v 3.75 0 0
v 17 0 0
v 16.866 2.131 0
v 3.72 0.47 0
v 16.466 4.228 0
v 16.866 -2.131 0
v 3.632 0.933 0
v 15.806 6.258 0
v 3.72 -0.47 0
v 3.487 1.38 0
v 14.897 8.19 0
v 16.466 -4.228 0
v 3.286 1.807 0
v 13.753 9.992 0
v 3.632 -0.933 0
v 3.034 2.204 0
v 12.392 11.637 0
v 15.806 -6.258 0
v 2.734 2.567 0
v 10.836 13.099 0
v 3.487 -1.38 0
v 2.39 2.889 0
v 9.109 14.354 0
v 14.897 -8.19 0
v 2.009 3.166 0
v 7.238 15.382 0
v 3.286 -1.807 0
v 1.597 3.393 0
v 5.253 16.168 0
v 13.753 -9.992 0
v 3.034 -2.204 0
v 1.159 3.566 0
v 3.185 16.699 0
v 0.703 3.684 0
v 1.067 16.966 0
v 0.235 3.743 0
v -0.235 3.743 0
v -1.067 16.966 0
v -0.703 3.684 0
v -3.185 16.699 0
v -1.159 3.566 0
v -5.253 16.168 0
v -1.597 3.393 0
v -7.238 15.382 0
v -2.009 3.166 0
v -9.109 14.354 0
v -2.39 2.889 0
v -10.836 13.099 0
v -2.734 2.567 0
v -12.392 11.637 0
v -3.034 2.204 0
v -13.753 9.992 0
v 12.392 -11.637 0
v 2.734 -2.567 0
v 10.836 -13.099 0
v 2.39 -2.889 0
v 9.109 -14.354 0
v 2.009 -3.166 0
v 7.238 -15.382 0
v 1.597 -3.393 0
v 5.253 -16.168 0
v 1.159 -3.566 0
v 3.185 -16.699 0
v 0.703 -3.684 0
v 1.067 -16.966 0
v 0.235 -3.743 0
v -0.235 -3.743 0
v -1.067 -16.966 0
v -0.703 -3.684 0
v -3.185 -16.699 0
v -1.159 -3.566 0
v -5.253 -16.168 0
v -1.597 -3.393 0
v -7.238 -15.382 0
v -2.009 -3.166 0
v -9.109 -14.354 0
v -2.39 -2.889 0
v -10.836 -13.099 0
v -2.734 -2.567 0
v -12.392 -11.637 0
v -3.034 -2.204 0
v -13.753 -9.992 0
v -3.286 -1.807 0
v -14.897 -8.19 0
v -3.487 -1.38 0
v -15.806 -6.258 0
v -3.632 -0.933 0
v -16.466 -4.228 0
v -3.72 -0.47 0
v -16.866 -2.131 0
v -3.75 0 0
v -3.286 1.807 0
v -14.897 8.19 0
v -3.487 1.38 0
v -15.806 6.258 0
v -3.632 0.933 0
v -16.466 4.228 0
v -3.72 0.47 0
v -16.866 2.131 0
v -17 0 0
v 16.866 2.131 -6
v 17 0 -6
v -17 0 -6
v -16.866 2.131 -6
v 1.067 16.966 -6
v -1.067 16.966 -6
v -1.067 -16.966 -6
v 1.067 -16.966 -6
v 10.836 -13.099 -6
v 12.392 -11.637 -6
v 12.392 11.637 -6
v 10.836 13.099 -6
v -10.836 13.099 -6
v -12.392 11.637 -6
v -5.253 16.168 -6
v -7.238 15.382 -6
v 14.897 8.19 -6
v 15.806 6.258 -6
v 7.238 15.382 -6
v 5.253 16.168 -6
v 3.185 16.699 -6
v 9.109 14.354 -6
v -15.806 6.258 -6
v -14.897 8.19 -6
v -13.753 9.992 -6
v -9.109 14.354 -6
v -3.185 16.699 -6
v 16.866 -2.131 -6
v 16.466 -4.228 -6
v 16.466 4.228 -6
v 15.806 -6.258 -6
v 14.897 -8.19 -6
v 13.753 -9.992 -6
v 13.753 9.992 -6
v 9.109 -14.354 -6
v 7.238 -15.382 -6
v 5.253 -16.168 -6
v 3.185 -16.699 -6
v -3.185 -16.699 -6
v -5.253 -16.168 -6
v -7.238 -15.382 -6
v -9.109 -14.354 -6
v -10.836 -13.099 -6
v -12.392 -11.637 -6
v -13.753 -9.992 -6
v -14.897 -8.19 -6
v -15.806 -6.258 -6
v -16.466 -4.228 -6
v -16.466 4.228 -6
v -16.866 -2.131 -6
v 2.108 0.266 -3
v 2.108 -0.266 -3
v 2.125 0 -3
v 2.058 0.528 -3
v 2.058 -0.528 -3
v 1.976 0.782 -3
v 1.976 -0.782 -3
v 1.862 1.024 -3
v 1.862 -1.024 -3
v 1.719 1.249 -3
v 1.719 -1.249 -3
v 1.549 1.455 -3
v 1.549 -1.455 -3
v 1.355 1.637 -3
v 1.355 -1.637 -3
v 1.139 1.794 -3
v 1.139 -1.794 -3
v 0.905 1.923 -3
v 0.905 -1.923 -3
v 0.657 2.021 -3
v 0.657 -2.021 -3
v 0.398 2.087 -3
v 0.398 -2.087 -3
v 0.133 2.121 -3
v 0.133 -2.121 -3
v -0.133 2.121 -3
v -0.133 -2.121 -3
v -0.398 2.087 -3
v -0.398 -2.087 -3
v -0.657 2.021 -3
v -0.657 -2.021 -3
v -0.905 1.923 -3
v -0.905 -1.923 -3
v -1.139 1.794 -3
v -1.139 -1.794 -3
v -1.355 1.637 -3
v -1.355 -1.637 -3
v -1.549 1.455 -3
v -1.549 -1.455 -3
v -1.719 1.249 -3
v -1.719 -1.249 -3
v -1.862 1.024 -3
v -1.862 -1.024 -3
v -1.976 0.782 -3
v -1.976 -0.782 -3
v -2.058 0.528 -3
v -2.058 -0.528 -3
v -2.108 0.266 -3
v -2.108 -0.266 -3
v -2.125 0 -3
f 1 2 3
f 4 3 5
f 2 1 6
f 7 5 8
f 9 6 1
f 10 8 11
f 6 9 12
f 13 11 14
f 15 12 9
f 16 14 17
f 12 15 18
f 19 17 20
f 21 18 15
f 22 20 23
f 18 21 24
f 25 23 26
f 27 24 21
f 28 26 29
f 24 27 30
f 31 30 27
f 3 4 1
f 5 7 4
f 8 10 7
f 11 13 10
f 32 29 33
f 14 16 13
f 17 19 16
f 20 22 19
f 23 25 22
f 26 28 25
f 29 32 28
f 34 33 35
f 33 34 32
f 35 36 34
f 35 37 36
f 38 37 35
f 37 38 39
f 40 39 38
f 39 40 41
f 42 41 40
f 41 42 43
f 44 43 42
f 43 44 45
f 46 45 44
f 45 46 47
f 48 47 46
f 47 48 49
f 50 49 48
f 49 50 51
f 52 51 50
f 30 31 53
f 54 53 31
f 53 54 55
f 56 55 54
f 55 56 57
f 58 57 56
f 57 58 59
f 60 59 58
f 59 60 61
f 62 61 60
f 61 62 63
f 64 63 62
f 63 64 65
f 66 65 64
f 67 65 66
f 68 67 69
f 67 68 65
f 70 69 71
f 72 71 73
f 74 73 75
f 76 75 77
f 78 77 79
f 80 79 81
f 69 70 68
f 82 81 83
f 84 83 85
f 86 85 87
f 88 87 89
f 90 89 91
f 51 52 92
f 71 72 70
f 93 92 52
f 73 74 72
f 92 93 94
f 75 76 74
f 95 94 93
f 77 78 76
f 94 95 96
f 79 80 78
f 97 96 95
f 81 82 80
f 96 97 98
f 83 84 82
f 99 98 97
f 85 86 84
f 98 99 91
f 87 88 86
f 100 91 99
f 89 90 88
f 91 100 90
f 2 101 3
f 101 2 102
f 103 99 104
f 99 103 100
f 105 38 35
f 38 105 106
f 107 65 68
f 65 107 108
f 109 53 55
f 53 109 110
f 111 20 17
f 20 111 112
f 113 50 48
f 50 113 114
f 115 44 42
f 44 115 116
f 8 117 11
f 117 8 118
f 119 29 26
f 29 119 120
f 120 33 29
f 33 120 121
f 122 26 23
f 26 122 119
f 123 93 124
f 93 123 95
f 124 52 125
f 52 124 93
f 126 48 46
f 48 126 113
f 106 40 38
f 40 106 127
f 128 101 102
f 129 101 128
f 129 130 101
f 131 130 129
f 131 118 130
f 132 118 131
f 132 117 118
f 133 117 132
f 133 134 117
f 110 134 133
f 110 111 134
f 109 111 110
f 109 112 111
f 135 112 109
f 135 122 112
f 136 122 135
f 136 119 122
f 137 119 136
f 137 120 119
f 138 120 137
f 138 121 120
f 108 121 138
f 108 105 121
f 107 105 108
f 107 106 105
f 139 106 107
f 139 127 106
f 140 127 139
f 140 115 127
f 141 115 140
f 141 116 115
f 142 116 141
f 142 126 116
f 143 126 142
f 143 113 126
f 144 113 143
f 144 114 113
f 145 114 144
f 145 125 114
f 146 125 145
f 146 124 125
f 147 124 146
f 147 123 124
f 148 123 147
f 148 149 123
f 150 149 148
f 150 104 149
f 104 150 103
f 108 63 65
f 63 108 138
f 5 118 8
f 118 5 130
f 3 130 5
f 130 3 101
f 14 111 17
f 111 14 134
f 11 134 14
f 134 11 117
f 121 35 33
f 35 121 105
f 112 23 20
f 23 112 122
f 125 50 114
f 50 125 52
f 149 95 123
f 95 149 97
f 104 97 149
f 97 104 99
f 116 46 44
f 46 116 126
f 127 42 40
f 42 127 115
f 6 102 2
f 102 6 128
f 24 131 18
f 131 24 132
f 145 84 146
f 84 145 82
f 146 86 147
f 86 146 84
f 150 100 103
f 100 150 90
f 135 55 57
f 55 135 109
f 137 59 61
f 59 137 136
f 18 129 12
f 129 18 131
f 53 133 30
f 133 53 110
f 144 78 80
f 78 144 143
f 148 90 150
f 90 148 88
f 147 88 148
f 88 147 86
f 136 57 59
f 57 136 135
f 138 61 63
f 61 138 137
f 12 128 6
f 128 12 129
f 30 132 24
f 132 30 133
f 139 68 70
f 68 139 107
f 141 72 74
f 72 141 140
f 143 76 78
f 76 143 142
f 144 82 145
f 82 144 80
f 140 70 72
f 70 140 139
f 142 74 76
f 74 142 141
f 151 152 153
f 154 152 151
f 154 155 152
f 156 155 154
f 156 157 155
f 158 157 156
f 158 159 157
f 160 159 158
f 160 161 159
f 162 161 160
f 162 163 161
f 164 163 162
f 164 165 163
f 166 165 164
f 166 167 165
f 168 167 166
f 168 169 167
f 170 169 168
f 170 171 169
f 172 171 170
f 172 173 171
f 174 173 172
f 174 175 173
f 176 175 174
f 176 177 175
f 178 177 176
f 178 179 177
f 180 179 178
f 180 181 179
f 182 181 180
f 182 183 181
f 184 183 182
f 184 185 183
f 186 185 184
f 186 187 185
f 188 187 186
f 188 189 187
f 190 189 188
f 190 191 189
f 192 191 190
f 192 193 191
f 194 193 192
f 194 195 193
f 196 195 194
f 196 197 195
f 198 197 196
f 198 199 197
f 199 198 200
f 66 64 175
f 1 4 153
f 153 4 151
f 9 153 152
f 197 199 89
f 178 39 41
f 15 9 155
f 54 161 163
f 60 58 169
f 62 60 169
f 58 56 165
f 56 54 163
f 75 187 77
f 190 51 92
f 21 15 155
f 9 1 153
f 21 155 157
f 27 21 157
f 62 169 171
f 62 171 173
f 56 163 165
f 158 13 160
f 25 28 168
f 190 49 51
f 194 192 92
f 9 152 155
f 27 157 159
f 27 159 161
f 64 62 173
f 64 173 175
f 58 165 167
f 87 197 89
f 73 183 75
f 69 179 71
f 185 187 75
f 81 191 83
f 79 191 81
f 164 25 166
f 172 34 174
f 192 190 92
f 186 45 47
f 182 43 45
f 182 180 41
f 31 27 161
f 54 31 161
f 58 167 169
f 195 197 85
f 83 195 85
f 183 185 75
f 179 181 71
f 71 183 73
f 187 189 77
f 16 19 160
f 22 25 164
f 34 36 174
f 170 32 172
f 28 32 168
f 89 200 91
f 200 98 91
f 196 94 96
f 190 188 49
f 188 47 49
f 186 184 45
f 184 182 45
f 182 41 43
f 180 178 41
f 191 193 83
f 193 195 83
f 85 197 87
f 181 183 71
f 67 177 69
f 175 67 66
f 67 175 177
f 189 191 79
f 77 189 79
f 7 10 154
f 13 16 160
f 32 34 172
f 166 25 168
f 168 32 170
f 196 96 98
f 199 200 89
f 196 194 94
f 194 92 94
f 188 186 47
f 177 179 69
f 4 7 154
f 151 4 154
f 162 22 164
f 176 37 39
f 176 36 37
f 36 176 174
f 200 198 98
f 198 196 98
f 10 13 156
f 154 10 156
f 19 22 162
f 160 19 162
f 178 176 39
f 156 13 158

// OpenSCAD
$fn = 50;


difference() {
	union() {
		translate(v = [0, 0, -3.0000000000]) {
			cylinder(h = 3, r = 7.0000000000);
		}
		translate(v = [0, 0, -6.0000000000]) {
			cylinder(h = 6, r = 17.0000000000);
		}
	}
	union() {
		translate(v = [0, 0, 0]) {
			rotate(a = [0, 0, 0]) {
				difference() {
					union() {
						#translate(v = [0, 0, -3.0000000000]) {
							cylinder(h = 3, r = 2.0000000000);
						}
						#translate(v = [0, 0, -3]) {
							cylinder(h = 3, r1 = 2.1250000000, r2 = 3.7500000000);
						}
						#translate(v = [0, 0, -3.0000000000]) {
							cylinder(h = 3, r = 2.1250000000);
						}
						#translate(v = [0, 0, -3.0000000000]) {
							cylinder(h = 3, r = 2.0000000000);
						}
					}
					union();
				}
			}
		}
	}
}
